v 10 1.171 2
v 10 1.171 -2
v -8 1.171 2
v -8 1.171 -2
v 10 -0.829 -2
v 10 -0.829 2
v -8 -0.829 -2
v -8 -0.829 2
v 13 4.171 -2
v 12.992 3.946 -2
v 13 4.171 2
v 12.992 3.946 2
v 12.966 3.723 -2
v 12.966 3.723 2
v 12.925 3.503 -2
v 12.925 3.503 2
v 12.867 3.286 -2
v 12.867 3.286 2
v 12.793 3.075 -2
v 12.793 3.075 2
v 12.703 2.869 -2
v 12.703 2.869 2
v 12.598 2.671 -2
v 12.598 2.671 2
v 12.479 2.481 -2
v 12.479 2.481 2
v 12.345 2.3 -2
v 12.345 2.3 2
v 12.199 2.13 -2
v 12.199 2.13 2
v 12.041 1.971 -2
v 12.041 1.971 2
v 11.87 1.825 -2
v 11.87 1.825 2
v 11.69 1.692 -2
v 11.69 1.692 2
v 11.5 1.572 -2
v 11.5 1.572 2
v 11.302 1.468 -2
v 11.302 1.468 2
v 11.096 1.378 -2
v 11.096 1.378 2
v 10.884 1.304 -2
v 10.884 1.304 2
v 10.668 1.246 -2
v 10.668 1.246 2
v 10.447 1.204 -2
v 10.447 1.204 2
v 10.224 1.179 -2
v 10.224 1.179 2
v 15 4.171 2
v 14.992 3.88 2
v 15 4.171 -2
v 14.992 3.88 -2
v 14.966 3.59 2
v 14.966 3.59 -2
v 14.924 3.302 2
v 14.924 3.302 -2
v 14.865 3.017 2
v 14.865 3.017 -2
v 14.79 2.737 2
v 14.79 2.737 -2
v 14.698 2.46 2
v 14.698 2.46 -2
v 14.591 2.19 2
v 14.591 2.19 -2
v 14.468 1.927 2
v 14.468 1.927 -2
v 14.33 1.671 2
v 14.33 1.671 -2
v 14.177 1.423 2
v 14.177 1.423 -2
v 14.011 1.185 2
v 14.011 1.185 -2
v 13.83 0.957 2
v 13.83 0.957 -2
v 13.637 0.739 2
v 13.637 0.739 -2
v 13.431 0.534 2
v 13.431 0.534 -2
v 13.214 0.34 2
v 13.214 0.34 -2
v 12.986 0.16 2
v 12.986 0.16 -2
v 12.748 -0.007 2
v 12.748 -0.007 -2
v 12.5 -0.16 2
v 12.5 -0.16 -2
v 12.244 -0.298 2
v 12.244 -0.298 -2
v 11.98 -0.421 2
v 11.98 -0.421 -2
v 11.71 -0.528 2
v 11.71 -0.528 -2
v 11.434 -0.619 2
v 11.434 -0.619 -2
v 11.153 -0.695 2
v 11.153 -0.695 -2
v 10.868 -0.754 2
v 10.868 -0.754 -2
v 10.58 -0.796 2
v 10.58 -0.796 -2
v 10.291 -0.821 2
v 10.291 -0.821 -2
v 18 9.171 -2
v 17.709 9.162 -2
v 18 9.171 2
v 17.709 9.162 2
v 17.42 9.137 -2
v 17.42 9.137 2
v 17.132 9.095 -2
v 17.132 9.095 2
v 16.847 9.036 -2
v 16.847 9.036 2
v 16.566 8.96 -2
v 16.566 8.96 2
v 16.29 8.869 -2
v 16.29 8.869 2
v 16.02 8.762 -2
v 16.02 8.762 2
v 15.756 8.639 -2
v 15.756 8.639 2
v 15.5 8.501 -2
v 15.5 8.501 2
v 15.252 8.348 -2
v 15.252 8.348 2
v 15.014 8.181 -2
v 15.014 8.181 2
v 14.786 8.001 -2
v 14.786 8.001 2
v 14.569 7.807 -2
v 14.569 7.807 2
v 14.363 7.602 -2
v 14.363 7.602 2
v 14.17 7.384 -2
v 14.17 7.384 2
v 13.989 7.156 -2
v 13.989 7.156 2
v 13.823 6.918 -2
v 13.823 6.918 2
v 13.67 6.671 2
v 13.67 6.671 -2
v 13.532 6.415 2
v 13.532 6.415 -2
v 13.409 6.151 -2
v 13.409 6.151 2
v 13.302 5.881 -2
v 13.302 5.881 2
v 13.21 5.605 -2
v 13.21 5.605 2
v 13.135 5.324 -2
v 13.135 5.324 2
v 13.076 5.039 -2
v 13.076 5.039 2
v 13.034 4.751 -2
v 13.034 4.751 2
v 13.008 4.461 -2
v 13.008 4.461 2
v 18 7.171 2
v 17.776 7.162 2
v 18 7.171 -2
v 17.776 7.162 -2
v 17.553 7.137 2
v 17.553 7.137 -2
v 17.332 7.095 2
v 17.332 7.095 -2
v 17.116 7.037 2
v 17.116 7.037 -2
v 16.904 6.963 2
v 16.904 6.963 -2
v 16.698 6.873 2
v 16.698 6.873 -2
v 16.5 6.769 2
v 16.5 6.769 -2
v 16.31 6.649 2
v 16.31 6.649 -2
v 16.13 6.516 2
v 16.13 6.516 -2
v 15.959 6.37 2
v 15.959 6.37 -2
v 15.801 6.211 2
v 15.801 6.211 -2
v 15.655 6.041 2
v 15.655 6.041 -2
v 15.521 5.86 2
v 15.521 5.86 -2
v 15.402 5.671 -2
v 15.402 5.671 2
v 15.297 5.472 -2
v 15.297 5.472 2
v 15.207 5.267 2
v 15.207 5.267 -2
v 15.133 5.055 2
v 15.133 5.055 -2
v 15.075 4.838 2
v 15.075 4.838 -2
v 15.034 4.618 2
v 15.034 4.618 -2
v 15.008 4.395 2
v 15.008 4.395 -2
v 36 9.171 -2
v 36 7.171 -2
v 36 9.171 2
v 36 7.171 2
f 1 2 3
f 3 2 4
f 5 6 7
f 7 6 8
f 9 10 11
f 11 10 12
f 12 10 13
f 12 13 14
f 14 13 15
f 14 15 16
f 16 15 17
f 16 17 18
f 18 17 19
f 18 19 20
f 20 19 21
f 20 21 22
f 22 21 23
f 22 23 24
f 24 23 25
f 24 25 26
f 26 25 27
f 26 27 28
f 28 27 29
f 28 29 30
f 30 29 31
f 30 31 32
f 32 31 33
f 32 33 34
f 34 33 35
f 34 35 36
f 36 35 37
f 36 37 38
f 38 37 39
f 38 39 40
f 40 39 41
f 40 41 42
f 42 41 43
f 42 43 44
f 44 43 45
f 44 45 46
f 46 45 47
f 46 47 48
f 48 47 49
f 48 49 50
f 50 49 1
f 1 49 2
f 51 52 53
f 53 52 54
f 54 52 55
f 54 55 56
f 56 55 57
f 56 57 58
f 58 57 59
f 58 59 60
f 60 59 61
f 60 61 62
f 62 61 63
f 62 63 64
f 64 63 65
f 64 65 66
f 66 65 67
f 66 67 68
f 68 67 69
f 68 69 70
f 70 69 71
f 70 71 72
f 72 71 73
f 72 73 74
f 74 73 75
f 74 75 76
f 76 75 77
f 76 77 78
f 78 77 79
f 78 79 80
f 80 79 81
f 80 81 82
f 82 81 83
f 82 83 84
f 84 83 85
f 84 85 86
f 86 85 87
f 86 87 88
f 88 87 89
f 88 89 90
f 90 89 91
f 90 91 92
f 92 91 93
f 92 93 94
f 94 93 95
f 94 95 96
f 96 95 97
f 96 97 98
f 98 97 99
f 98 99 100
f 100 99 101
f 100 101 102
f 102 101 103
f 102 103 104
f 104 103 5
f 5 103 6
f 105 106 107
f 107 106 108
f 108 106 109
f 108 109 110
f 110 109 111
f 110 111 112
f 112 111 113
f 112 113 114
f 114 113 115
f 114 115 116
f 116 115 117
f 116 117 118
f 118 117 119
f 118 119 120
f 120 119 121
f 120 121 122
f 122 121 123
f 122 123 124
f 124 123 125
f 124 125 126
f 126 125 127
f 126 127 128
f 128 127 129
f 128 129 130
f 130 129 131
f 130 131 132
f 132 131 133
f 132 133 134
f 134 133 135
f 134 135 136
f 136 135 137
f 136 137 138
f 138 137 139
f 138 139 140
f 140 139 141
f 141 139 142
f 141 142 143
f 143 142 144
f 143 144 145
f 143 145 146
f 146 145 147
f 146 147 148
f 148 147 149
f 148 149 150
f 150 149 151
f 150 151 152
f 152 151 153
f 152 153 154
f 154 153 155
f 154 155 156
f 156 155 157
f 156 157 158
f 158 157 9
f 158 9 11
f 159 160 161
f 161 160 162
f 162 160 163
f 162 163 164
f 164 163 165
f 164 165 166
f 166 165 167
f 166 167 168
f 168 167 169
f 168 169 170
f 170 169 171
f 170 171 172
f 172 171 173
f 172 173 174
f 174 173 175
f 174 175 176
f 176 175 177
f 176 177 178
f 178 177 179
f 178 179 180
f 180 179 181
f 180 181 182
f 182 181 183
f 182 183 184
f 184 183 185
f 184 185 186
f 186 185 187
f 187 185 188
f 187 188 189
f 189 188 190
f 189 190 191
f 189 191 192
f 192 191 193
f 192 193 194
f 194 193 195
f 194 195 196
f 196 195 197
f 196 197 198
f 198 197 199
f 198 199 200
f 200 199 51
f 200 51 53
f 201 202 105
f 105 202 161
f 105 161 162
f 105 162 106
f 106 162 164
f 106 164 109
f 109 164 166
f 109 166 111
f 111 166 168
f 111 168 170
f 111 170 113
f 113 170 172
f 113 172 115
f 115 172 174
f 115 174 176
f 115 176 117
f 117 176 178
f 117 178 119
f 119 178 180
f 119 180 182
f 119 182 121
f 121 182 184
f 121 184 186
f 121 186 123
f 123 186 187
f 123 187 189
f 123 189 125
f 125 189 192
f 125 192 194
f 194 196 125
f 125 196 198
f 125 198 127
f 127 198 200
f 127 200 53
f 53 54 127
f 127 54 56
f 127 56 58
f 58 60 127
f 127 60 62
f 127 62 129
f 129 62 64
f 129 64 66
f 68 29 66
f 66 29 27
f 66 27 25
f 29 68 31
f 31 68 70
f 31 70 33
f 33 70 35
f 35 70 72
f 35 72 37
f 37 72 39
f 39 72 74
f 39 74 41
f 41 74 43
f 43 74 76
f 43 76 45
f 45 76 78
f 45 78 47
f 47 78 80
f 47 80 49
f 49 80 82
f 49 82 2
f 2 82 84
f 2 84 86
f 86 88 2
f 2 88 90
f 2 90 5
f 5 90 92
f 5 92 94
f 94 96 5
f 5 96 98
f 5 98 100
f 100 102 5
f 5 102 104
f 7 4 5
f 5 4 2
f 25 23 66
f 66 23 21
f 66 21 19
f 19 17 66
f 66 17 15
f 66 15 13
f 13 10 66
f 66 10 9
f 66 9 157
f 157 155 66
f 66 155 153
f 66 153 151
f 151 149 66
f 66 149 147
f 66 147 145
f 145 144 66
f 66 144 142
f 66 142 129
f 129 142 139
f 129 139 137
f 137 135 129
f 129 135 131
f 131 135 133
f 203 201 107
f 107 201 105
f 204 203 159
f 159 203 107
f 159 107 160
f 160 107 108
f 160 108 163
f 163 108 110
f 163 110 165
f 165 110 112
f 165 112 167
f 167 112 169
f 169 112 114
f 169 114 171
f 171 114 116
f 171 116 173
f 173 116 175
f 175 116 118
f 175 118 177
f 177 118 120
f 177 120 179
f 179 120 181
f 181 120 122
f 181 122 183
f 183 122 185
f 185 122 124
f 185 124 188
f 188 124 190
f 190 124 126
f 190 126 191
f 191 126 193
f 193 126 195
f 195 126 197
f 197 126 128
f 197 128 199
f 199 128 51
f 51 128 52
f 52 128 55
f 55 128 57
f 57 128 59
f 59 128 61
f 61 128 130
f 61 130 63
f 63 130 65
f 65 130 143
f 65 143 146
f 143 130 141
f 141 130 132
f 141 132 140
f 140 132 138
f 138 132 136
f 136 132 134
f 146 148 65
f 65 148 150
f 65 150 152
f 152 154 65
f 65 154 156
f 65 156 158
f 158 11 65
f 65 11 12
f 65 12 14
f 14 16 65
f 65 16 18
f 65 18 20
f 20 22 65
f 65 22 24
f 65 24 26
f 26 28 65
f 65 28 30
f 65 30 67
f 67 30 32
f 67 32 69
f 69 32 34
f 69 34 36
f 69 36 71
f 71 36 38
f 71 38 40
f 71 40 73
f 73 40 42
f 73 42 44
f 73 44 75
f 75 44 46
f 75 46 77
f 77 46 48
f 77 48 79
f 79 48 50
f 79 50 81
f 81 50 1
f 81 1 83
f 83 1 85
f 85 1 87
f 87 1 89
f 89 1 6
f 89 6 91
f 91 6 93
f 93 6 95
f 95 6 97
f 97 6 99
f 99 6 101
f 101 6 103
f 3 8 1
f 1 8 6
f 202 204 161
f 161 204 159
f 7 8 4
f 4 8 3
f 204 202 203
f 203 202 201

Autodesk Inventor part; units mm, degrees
ref_plane "XZ Plane" through (0, 0, 0) normal (0, 1, 0) x (-1, 0, 0)
ref_plane "XY Plane" through (0, 0, 0) normal (0, 0, 1) x (1, 0, 0)
sketch "Sketch2" plane through (0, 0, 0) normal (0, 0, 1) x (1, 0, 0)
  line L0 (-8, 0.1705) -> (10, 0.1705)
  line L1 (36, 8.1705) -> (18, 8.1705)
  line L2 (14, 4.1705) -> (14, 4.1705)
  arc A0 (18, 8.1705) -> (14, 4.1705) centre (18, 4.1705) ccw
  arc A1 (10, 0.1705) -> (14, 4.1705) centre (10, 4.1705) ccw
  point P0 (14, 0.1705)
  point P1 (14, 8.1705)
  dimension "d9" = 44
  dimension "d15" = 8
  dimension "d16" = 22
  dimension "d17" = 22
  dimension "d24" = 4
ref_plane "Work Plane1" through (36, 8.1705, 0) normal (1, 0, 0) x (0, 1, 0)
sketch "Sketch3" plane through (36, 8.1705, 0) normal (1, 0, 0) x (0, 1, 0)
  line L0 (-1, 2) -> (-1, -2)
  line L1 (-1, -2) -> (1, -2)
  line L2 (1, -2) -> (1, 2)
  line L3 (1, 2) -> (-1, 2)
  line L4 (-1, 2) -> (1, -2) construction
  line L5 (-1, -2) -> (1, 2) construction
  point P0 (-8.1705, 0)
  point P1 (0, 0)
  dimension "d20" = 4
  dimension "d21" = 2
sweep "Sweep1" add profiles "Sketch3" path "Sketch2"
properties part number "SSSS"
